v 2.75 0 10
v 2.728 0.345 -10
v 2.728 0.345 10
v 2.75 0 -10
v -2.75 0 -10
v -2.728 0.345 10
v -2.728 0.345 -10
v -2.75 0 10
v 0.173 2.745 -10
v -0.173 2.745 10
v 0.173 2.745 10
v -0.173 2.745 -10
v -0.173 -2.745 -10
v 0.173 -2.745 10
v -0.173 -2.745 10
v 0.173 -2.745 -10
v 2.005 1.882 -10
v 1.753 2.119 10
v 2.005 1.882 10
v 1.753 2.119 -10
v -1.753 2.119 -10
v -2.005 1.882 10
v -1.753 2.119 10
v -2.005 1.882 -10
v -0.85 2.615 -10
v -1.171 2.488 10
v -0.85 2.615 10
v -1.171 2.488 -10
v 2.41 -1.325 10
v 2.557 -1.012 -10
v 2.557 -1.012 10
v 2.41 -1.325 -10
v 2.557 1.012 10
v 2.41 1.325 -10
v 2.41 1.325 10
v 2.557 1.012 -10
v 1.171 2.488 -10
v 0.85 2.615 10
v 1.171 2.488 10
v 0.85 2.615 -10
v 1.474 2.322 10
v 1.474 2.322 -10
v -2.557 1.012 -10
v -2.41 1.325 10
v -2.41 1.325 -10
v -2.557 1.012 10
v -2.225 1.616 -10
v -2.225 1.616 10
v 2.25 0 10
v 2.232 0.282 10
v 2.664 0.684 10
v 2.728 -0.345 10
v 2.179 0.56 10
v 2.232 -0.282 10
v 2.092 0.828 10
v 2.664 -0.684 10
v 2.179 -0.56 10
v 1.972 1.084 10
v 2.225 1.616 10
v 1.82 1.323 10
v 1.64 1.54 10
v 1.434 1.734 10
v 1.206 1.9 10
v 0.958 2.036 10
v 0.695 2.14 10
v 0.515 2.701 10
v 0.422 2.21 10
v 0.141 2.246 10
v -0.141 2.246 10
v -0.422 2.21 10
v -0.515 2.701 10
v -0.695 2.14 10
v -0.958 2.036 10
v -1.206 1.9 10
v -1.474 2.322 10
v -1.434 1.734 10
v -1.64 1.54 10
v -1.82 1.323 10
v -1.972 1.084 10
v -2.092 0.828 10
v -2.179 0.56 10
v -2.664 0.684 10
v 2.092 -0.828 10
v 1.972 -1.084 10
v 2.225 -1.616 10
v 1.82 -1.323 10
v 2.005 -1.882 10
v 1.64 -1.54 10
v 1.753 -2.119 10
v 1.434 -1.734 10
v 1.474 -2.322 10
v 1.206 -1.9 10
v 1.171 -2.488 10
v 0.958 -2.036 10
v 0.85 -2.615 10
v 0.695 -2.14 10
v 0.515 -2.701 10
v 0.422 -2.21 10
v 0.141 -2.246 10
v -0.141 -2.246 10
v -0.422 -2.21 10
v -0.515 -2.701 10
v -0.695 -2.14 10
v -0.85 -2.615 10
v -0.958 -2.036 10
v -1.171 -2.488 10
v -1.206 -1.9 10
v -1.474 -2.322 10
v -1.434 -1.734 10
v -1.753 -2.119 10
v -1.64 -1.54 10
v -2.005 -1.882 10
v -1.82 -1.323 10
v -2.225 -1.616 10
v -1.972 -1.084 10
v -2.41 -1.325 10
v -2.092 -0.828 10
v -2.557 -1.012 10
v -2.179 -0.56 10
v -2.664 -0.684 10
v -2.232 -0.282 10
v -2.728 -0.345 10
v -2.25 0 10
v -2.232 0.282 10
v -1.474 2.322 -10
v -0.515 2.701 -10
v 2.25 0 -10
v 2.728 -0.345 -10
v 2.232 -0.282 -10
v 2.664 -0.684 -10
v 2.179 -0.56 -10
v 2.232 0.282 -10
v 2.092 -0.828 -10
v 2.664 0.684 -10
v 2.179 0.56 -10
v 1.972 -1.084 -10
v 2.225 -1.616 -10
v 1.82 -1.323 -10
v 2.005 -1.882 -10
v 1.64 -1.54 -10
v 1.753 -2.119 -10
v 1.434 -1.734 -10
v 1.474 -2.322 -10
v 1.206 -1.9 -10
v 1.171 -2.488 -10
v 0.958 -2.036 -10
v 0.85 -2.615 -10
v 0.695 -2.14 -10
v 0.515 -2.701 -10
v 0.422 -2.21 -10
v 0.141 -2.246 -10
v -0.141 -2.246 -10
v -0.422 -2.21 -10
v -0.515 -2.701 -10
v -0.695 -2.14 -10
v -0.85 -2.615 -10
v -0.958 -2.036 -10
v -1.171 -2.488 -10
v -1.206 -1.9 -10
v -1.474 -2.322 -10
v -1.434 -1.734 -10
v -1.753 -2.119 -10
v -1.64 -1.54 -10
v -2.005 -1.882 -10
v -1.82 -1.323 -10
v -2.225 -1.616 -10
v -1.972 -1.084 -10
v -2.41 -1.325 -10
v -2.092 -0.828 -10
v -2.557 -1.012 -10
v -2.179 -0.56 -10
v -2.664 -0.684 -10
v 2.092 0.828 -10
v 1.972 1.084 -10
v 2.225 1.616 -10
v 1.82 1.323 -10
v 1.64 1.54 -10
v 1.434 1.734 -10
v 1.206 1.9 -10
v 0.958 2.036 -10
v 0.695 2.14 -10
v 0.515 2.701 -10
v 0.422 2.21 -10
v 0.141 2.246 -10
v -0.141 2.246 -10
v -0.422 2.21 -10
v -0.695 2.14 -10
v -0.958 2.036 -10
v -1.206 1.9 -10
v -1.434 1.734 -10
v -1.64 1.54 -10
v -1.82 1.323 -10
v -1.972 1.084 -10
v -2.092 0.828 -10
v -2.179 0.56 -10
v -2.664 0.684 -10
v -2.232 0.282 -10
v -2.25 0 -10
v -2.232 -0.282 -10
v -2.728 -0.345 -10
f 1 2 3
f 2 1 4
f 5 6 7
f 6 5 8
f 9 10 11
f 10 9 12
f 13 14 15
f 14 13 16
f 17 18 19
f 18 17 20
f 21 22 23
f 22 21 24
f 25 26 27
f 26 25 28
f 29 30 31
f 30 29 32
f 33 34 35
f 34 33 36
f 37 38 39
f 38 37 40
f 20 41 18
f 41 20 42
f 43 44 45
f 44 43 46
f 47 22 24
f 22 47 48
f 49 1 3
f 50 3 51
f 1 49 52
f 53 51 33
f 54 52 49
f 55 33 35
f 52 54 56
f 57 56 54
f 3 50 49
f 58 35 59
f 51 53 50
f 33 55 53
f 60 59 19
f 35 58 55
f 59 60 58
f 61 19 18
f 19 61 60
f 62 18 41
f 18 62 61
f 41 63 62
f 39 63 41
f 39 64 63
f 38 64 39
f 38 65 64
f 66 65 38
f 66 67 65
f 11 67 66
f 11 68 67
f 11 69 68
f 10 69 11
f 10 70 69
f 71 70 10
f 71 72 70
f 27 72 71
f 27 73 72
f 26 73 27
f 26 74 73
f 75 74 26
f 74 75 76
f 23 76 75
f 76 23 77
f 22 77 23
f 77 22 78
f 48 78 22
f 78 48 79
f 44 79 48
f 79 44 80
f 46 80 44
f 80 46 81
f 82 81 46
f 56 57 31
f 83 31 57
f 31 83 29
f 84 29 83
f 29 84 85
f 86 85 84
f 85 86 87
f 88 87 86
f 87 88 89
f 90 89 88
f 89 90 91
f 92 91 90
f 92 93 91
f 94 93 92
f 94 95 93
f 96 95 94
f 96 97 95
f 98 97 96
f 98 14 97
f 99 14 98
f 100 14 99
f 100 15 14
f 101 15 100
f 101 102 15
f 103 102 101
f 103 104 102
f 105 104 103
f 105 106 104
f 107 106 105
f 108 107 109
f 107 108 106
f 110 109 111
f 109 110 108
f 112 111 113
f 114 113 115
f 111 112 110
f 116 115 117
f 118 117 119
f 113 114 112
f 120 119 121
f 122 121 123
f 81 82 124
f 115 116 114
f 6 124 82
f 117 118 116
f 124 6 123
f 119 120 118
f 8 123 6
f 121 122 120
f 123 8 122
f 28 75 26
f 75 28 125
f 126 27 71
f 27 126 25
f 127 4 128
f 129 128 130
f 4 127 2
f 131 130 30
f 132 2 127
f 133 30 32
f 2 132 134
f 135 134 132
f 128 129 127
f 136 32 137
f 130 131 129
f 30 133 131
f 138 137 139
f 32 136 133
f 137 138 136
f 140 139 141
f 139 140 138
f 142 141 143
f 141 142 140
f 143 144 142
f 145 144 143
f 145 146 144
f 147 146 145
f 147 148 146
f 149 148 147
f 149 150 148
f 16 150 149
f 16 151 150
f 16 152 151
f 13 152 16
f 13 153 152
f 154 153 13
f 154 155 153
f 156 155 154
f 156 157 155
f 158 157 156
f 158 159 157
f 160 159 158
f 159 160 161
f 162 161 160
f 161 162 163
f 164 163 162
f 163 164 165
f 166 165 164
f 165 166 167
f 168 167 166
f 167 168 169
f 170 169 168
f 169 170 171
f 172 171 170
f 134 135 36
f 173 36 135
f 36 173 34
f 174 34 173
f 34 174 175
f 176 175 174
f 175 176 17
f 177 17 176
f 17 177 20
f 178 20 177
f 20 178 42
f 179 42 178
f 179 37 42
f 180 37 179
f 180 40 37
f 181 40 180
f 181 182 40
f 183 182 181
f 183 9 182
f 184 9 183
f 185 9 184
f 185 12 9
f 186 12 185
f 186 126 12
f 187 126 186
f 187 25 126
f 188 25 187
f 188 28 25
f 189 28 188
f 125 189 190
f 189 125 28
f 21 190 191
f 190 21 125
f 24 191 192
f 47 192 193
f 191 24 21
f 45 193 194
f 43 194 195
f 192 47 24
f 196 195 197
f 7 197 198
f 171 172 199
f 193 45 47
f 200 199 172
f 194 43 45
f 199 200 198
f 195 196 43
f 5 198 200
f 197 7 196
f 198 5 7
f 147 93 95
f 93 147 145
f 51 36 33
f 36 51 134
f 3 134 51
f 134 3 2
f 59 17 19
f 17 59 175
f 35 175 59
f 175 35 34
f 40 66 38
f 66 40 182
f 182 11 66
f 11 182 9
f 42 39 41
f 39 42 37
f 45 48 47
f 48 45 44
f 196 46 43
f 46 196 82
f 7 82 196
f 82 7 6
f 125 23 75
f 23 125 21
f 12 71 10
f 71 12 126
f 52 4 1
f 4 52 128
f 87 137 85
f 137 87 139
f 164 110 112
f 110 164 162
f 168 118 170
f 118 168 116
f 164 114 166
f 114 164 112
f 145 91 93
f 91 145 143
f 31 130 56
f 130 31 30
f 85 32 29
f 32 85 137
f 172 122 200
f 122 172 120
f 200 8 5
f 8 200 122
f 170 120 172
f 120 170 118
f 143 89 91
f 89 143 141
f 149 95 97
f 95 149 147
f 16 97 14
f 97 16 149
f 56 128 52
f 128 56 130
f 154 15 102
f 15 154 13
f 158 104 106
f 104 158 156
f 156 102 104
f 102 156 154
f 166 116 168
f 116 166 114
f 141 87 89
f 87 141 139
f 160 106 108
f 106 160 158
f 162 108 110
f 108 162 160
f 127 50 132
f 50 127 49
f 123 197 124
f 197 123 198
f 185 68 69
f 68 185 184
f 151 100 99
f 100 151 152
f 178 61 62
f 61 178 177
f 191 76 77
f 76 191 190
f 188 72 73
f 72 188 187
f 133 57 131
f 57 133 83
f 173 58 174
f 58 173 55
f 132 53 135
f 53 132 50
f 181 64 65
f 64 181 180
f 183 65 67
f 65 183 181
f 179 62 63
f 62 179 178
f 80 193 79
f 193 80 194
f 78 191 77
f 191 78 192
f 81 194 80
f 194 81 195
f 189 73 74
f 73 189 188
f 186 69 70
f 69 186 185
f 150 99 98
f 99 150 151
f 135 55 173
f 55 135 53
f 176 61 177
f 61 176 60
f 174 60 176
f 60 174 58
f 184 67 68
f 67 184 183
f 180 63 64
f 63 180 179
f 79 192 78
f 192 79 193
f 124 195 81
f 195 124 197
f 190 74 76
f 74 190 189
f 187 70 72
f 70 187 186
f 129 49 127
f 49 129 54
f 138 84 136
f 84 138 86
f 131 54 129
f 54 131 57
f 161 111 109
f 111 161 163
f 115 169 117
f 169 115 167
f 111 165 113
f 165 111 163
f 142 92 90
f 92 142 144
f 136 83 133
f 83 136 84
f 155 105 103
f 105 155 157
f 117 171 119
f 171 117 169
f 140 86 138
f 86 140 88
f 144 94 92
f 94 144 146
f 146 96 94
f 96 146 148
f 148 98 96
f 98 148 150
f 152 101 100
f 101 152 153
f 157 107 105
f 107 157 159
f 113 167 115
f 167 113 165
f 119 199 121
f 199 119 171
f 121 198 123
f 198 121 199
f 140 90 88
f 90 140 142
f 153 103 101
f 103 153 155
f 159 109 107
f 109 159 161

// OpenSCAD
$fn = 50;


difference() {
	union() {
		translate(v = [0, 0, -10.0000000000]) {
			cylinder(h = 20, r = 2.7500000000);
		}
	}
	union() {
		translate(v = [0, 0, -100.0000000000]) {
			cylinder(h = 200, r = 2.2500000000);
		}
	}
}
